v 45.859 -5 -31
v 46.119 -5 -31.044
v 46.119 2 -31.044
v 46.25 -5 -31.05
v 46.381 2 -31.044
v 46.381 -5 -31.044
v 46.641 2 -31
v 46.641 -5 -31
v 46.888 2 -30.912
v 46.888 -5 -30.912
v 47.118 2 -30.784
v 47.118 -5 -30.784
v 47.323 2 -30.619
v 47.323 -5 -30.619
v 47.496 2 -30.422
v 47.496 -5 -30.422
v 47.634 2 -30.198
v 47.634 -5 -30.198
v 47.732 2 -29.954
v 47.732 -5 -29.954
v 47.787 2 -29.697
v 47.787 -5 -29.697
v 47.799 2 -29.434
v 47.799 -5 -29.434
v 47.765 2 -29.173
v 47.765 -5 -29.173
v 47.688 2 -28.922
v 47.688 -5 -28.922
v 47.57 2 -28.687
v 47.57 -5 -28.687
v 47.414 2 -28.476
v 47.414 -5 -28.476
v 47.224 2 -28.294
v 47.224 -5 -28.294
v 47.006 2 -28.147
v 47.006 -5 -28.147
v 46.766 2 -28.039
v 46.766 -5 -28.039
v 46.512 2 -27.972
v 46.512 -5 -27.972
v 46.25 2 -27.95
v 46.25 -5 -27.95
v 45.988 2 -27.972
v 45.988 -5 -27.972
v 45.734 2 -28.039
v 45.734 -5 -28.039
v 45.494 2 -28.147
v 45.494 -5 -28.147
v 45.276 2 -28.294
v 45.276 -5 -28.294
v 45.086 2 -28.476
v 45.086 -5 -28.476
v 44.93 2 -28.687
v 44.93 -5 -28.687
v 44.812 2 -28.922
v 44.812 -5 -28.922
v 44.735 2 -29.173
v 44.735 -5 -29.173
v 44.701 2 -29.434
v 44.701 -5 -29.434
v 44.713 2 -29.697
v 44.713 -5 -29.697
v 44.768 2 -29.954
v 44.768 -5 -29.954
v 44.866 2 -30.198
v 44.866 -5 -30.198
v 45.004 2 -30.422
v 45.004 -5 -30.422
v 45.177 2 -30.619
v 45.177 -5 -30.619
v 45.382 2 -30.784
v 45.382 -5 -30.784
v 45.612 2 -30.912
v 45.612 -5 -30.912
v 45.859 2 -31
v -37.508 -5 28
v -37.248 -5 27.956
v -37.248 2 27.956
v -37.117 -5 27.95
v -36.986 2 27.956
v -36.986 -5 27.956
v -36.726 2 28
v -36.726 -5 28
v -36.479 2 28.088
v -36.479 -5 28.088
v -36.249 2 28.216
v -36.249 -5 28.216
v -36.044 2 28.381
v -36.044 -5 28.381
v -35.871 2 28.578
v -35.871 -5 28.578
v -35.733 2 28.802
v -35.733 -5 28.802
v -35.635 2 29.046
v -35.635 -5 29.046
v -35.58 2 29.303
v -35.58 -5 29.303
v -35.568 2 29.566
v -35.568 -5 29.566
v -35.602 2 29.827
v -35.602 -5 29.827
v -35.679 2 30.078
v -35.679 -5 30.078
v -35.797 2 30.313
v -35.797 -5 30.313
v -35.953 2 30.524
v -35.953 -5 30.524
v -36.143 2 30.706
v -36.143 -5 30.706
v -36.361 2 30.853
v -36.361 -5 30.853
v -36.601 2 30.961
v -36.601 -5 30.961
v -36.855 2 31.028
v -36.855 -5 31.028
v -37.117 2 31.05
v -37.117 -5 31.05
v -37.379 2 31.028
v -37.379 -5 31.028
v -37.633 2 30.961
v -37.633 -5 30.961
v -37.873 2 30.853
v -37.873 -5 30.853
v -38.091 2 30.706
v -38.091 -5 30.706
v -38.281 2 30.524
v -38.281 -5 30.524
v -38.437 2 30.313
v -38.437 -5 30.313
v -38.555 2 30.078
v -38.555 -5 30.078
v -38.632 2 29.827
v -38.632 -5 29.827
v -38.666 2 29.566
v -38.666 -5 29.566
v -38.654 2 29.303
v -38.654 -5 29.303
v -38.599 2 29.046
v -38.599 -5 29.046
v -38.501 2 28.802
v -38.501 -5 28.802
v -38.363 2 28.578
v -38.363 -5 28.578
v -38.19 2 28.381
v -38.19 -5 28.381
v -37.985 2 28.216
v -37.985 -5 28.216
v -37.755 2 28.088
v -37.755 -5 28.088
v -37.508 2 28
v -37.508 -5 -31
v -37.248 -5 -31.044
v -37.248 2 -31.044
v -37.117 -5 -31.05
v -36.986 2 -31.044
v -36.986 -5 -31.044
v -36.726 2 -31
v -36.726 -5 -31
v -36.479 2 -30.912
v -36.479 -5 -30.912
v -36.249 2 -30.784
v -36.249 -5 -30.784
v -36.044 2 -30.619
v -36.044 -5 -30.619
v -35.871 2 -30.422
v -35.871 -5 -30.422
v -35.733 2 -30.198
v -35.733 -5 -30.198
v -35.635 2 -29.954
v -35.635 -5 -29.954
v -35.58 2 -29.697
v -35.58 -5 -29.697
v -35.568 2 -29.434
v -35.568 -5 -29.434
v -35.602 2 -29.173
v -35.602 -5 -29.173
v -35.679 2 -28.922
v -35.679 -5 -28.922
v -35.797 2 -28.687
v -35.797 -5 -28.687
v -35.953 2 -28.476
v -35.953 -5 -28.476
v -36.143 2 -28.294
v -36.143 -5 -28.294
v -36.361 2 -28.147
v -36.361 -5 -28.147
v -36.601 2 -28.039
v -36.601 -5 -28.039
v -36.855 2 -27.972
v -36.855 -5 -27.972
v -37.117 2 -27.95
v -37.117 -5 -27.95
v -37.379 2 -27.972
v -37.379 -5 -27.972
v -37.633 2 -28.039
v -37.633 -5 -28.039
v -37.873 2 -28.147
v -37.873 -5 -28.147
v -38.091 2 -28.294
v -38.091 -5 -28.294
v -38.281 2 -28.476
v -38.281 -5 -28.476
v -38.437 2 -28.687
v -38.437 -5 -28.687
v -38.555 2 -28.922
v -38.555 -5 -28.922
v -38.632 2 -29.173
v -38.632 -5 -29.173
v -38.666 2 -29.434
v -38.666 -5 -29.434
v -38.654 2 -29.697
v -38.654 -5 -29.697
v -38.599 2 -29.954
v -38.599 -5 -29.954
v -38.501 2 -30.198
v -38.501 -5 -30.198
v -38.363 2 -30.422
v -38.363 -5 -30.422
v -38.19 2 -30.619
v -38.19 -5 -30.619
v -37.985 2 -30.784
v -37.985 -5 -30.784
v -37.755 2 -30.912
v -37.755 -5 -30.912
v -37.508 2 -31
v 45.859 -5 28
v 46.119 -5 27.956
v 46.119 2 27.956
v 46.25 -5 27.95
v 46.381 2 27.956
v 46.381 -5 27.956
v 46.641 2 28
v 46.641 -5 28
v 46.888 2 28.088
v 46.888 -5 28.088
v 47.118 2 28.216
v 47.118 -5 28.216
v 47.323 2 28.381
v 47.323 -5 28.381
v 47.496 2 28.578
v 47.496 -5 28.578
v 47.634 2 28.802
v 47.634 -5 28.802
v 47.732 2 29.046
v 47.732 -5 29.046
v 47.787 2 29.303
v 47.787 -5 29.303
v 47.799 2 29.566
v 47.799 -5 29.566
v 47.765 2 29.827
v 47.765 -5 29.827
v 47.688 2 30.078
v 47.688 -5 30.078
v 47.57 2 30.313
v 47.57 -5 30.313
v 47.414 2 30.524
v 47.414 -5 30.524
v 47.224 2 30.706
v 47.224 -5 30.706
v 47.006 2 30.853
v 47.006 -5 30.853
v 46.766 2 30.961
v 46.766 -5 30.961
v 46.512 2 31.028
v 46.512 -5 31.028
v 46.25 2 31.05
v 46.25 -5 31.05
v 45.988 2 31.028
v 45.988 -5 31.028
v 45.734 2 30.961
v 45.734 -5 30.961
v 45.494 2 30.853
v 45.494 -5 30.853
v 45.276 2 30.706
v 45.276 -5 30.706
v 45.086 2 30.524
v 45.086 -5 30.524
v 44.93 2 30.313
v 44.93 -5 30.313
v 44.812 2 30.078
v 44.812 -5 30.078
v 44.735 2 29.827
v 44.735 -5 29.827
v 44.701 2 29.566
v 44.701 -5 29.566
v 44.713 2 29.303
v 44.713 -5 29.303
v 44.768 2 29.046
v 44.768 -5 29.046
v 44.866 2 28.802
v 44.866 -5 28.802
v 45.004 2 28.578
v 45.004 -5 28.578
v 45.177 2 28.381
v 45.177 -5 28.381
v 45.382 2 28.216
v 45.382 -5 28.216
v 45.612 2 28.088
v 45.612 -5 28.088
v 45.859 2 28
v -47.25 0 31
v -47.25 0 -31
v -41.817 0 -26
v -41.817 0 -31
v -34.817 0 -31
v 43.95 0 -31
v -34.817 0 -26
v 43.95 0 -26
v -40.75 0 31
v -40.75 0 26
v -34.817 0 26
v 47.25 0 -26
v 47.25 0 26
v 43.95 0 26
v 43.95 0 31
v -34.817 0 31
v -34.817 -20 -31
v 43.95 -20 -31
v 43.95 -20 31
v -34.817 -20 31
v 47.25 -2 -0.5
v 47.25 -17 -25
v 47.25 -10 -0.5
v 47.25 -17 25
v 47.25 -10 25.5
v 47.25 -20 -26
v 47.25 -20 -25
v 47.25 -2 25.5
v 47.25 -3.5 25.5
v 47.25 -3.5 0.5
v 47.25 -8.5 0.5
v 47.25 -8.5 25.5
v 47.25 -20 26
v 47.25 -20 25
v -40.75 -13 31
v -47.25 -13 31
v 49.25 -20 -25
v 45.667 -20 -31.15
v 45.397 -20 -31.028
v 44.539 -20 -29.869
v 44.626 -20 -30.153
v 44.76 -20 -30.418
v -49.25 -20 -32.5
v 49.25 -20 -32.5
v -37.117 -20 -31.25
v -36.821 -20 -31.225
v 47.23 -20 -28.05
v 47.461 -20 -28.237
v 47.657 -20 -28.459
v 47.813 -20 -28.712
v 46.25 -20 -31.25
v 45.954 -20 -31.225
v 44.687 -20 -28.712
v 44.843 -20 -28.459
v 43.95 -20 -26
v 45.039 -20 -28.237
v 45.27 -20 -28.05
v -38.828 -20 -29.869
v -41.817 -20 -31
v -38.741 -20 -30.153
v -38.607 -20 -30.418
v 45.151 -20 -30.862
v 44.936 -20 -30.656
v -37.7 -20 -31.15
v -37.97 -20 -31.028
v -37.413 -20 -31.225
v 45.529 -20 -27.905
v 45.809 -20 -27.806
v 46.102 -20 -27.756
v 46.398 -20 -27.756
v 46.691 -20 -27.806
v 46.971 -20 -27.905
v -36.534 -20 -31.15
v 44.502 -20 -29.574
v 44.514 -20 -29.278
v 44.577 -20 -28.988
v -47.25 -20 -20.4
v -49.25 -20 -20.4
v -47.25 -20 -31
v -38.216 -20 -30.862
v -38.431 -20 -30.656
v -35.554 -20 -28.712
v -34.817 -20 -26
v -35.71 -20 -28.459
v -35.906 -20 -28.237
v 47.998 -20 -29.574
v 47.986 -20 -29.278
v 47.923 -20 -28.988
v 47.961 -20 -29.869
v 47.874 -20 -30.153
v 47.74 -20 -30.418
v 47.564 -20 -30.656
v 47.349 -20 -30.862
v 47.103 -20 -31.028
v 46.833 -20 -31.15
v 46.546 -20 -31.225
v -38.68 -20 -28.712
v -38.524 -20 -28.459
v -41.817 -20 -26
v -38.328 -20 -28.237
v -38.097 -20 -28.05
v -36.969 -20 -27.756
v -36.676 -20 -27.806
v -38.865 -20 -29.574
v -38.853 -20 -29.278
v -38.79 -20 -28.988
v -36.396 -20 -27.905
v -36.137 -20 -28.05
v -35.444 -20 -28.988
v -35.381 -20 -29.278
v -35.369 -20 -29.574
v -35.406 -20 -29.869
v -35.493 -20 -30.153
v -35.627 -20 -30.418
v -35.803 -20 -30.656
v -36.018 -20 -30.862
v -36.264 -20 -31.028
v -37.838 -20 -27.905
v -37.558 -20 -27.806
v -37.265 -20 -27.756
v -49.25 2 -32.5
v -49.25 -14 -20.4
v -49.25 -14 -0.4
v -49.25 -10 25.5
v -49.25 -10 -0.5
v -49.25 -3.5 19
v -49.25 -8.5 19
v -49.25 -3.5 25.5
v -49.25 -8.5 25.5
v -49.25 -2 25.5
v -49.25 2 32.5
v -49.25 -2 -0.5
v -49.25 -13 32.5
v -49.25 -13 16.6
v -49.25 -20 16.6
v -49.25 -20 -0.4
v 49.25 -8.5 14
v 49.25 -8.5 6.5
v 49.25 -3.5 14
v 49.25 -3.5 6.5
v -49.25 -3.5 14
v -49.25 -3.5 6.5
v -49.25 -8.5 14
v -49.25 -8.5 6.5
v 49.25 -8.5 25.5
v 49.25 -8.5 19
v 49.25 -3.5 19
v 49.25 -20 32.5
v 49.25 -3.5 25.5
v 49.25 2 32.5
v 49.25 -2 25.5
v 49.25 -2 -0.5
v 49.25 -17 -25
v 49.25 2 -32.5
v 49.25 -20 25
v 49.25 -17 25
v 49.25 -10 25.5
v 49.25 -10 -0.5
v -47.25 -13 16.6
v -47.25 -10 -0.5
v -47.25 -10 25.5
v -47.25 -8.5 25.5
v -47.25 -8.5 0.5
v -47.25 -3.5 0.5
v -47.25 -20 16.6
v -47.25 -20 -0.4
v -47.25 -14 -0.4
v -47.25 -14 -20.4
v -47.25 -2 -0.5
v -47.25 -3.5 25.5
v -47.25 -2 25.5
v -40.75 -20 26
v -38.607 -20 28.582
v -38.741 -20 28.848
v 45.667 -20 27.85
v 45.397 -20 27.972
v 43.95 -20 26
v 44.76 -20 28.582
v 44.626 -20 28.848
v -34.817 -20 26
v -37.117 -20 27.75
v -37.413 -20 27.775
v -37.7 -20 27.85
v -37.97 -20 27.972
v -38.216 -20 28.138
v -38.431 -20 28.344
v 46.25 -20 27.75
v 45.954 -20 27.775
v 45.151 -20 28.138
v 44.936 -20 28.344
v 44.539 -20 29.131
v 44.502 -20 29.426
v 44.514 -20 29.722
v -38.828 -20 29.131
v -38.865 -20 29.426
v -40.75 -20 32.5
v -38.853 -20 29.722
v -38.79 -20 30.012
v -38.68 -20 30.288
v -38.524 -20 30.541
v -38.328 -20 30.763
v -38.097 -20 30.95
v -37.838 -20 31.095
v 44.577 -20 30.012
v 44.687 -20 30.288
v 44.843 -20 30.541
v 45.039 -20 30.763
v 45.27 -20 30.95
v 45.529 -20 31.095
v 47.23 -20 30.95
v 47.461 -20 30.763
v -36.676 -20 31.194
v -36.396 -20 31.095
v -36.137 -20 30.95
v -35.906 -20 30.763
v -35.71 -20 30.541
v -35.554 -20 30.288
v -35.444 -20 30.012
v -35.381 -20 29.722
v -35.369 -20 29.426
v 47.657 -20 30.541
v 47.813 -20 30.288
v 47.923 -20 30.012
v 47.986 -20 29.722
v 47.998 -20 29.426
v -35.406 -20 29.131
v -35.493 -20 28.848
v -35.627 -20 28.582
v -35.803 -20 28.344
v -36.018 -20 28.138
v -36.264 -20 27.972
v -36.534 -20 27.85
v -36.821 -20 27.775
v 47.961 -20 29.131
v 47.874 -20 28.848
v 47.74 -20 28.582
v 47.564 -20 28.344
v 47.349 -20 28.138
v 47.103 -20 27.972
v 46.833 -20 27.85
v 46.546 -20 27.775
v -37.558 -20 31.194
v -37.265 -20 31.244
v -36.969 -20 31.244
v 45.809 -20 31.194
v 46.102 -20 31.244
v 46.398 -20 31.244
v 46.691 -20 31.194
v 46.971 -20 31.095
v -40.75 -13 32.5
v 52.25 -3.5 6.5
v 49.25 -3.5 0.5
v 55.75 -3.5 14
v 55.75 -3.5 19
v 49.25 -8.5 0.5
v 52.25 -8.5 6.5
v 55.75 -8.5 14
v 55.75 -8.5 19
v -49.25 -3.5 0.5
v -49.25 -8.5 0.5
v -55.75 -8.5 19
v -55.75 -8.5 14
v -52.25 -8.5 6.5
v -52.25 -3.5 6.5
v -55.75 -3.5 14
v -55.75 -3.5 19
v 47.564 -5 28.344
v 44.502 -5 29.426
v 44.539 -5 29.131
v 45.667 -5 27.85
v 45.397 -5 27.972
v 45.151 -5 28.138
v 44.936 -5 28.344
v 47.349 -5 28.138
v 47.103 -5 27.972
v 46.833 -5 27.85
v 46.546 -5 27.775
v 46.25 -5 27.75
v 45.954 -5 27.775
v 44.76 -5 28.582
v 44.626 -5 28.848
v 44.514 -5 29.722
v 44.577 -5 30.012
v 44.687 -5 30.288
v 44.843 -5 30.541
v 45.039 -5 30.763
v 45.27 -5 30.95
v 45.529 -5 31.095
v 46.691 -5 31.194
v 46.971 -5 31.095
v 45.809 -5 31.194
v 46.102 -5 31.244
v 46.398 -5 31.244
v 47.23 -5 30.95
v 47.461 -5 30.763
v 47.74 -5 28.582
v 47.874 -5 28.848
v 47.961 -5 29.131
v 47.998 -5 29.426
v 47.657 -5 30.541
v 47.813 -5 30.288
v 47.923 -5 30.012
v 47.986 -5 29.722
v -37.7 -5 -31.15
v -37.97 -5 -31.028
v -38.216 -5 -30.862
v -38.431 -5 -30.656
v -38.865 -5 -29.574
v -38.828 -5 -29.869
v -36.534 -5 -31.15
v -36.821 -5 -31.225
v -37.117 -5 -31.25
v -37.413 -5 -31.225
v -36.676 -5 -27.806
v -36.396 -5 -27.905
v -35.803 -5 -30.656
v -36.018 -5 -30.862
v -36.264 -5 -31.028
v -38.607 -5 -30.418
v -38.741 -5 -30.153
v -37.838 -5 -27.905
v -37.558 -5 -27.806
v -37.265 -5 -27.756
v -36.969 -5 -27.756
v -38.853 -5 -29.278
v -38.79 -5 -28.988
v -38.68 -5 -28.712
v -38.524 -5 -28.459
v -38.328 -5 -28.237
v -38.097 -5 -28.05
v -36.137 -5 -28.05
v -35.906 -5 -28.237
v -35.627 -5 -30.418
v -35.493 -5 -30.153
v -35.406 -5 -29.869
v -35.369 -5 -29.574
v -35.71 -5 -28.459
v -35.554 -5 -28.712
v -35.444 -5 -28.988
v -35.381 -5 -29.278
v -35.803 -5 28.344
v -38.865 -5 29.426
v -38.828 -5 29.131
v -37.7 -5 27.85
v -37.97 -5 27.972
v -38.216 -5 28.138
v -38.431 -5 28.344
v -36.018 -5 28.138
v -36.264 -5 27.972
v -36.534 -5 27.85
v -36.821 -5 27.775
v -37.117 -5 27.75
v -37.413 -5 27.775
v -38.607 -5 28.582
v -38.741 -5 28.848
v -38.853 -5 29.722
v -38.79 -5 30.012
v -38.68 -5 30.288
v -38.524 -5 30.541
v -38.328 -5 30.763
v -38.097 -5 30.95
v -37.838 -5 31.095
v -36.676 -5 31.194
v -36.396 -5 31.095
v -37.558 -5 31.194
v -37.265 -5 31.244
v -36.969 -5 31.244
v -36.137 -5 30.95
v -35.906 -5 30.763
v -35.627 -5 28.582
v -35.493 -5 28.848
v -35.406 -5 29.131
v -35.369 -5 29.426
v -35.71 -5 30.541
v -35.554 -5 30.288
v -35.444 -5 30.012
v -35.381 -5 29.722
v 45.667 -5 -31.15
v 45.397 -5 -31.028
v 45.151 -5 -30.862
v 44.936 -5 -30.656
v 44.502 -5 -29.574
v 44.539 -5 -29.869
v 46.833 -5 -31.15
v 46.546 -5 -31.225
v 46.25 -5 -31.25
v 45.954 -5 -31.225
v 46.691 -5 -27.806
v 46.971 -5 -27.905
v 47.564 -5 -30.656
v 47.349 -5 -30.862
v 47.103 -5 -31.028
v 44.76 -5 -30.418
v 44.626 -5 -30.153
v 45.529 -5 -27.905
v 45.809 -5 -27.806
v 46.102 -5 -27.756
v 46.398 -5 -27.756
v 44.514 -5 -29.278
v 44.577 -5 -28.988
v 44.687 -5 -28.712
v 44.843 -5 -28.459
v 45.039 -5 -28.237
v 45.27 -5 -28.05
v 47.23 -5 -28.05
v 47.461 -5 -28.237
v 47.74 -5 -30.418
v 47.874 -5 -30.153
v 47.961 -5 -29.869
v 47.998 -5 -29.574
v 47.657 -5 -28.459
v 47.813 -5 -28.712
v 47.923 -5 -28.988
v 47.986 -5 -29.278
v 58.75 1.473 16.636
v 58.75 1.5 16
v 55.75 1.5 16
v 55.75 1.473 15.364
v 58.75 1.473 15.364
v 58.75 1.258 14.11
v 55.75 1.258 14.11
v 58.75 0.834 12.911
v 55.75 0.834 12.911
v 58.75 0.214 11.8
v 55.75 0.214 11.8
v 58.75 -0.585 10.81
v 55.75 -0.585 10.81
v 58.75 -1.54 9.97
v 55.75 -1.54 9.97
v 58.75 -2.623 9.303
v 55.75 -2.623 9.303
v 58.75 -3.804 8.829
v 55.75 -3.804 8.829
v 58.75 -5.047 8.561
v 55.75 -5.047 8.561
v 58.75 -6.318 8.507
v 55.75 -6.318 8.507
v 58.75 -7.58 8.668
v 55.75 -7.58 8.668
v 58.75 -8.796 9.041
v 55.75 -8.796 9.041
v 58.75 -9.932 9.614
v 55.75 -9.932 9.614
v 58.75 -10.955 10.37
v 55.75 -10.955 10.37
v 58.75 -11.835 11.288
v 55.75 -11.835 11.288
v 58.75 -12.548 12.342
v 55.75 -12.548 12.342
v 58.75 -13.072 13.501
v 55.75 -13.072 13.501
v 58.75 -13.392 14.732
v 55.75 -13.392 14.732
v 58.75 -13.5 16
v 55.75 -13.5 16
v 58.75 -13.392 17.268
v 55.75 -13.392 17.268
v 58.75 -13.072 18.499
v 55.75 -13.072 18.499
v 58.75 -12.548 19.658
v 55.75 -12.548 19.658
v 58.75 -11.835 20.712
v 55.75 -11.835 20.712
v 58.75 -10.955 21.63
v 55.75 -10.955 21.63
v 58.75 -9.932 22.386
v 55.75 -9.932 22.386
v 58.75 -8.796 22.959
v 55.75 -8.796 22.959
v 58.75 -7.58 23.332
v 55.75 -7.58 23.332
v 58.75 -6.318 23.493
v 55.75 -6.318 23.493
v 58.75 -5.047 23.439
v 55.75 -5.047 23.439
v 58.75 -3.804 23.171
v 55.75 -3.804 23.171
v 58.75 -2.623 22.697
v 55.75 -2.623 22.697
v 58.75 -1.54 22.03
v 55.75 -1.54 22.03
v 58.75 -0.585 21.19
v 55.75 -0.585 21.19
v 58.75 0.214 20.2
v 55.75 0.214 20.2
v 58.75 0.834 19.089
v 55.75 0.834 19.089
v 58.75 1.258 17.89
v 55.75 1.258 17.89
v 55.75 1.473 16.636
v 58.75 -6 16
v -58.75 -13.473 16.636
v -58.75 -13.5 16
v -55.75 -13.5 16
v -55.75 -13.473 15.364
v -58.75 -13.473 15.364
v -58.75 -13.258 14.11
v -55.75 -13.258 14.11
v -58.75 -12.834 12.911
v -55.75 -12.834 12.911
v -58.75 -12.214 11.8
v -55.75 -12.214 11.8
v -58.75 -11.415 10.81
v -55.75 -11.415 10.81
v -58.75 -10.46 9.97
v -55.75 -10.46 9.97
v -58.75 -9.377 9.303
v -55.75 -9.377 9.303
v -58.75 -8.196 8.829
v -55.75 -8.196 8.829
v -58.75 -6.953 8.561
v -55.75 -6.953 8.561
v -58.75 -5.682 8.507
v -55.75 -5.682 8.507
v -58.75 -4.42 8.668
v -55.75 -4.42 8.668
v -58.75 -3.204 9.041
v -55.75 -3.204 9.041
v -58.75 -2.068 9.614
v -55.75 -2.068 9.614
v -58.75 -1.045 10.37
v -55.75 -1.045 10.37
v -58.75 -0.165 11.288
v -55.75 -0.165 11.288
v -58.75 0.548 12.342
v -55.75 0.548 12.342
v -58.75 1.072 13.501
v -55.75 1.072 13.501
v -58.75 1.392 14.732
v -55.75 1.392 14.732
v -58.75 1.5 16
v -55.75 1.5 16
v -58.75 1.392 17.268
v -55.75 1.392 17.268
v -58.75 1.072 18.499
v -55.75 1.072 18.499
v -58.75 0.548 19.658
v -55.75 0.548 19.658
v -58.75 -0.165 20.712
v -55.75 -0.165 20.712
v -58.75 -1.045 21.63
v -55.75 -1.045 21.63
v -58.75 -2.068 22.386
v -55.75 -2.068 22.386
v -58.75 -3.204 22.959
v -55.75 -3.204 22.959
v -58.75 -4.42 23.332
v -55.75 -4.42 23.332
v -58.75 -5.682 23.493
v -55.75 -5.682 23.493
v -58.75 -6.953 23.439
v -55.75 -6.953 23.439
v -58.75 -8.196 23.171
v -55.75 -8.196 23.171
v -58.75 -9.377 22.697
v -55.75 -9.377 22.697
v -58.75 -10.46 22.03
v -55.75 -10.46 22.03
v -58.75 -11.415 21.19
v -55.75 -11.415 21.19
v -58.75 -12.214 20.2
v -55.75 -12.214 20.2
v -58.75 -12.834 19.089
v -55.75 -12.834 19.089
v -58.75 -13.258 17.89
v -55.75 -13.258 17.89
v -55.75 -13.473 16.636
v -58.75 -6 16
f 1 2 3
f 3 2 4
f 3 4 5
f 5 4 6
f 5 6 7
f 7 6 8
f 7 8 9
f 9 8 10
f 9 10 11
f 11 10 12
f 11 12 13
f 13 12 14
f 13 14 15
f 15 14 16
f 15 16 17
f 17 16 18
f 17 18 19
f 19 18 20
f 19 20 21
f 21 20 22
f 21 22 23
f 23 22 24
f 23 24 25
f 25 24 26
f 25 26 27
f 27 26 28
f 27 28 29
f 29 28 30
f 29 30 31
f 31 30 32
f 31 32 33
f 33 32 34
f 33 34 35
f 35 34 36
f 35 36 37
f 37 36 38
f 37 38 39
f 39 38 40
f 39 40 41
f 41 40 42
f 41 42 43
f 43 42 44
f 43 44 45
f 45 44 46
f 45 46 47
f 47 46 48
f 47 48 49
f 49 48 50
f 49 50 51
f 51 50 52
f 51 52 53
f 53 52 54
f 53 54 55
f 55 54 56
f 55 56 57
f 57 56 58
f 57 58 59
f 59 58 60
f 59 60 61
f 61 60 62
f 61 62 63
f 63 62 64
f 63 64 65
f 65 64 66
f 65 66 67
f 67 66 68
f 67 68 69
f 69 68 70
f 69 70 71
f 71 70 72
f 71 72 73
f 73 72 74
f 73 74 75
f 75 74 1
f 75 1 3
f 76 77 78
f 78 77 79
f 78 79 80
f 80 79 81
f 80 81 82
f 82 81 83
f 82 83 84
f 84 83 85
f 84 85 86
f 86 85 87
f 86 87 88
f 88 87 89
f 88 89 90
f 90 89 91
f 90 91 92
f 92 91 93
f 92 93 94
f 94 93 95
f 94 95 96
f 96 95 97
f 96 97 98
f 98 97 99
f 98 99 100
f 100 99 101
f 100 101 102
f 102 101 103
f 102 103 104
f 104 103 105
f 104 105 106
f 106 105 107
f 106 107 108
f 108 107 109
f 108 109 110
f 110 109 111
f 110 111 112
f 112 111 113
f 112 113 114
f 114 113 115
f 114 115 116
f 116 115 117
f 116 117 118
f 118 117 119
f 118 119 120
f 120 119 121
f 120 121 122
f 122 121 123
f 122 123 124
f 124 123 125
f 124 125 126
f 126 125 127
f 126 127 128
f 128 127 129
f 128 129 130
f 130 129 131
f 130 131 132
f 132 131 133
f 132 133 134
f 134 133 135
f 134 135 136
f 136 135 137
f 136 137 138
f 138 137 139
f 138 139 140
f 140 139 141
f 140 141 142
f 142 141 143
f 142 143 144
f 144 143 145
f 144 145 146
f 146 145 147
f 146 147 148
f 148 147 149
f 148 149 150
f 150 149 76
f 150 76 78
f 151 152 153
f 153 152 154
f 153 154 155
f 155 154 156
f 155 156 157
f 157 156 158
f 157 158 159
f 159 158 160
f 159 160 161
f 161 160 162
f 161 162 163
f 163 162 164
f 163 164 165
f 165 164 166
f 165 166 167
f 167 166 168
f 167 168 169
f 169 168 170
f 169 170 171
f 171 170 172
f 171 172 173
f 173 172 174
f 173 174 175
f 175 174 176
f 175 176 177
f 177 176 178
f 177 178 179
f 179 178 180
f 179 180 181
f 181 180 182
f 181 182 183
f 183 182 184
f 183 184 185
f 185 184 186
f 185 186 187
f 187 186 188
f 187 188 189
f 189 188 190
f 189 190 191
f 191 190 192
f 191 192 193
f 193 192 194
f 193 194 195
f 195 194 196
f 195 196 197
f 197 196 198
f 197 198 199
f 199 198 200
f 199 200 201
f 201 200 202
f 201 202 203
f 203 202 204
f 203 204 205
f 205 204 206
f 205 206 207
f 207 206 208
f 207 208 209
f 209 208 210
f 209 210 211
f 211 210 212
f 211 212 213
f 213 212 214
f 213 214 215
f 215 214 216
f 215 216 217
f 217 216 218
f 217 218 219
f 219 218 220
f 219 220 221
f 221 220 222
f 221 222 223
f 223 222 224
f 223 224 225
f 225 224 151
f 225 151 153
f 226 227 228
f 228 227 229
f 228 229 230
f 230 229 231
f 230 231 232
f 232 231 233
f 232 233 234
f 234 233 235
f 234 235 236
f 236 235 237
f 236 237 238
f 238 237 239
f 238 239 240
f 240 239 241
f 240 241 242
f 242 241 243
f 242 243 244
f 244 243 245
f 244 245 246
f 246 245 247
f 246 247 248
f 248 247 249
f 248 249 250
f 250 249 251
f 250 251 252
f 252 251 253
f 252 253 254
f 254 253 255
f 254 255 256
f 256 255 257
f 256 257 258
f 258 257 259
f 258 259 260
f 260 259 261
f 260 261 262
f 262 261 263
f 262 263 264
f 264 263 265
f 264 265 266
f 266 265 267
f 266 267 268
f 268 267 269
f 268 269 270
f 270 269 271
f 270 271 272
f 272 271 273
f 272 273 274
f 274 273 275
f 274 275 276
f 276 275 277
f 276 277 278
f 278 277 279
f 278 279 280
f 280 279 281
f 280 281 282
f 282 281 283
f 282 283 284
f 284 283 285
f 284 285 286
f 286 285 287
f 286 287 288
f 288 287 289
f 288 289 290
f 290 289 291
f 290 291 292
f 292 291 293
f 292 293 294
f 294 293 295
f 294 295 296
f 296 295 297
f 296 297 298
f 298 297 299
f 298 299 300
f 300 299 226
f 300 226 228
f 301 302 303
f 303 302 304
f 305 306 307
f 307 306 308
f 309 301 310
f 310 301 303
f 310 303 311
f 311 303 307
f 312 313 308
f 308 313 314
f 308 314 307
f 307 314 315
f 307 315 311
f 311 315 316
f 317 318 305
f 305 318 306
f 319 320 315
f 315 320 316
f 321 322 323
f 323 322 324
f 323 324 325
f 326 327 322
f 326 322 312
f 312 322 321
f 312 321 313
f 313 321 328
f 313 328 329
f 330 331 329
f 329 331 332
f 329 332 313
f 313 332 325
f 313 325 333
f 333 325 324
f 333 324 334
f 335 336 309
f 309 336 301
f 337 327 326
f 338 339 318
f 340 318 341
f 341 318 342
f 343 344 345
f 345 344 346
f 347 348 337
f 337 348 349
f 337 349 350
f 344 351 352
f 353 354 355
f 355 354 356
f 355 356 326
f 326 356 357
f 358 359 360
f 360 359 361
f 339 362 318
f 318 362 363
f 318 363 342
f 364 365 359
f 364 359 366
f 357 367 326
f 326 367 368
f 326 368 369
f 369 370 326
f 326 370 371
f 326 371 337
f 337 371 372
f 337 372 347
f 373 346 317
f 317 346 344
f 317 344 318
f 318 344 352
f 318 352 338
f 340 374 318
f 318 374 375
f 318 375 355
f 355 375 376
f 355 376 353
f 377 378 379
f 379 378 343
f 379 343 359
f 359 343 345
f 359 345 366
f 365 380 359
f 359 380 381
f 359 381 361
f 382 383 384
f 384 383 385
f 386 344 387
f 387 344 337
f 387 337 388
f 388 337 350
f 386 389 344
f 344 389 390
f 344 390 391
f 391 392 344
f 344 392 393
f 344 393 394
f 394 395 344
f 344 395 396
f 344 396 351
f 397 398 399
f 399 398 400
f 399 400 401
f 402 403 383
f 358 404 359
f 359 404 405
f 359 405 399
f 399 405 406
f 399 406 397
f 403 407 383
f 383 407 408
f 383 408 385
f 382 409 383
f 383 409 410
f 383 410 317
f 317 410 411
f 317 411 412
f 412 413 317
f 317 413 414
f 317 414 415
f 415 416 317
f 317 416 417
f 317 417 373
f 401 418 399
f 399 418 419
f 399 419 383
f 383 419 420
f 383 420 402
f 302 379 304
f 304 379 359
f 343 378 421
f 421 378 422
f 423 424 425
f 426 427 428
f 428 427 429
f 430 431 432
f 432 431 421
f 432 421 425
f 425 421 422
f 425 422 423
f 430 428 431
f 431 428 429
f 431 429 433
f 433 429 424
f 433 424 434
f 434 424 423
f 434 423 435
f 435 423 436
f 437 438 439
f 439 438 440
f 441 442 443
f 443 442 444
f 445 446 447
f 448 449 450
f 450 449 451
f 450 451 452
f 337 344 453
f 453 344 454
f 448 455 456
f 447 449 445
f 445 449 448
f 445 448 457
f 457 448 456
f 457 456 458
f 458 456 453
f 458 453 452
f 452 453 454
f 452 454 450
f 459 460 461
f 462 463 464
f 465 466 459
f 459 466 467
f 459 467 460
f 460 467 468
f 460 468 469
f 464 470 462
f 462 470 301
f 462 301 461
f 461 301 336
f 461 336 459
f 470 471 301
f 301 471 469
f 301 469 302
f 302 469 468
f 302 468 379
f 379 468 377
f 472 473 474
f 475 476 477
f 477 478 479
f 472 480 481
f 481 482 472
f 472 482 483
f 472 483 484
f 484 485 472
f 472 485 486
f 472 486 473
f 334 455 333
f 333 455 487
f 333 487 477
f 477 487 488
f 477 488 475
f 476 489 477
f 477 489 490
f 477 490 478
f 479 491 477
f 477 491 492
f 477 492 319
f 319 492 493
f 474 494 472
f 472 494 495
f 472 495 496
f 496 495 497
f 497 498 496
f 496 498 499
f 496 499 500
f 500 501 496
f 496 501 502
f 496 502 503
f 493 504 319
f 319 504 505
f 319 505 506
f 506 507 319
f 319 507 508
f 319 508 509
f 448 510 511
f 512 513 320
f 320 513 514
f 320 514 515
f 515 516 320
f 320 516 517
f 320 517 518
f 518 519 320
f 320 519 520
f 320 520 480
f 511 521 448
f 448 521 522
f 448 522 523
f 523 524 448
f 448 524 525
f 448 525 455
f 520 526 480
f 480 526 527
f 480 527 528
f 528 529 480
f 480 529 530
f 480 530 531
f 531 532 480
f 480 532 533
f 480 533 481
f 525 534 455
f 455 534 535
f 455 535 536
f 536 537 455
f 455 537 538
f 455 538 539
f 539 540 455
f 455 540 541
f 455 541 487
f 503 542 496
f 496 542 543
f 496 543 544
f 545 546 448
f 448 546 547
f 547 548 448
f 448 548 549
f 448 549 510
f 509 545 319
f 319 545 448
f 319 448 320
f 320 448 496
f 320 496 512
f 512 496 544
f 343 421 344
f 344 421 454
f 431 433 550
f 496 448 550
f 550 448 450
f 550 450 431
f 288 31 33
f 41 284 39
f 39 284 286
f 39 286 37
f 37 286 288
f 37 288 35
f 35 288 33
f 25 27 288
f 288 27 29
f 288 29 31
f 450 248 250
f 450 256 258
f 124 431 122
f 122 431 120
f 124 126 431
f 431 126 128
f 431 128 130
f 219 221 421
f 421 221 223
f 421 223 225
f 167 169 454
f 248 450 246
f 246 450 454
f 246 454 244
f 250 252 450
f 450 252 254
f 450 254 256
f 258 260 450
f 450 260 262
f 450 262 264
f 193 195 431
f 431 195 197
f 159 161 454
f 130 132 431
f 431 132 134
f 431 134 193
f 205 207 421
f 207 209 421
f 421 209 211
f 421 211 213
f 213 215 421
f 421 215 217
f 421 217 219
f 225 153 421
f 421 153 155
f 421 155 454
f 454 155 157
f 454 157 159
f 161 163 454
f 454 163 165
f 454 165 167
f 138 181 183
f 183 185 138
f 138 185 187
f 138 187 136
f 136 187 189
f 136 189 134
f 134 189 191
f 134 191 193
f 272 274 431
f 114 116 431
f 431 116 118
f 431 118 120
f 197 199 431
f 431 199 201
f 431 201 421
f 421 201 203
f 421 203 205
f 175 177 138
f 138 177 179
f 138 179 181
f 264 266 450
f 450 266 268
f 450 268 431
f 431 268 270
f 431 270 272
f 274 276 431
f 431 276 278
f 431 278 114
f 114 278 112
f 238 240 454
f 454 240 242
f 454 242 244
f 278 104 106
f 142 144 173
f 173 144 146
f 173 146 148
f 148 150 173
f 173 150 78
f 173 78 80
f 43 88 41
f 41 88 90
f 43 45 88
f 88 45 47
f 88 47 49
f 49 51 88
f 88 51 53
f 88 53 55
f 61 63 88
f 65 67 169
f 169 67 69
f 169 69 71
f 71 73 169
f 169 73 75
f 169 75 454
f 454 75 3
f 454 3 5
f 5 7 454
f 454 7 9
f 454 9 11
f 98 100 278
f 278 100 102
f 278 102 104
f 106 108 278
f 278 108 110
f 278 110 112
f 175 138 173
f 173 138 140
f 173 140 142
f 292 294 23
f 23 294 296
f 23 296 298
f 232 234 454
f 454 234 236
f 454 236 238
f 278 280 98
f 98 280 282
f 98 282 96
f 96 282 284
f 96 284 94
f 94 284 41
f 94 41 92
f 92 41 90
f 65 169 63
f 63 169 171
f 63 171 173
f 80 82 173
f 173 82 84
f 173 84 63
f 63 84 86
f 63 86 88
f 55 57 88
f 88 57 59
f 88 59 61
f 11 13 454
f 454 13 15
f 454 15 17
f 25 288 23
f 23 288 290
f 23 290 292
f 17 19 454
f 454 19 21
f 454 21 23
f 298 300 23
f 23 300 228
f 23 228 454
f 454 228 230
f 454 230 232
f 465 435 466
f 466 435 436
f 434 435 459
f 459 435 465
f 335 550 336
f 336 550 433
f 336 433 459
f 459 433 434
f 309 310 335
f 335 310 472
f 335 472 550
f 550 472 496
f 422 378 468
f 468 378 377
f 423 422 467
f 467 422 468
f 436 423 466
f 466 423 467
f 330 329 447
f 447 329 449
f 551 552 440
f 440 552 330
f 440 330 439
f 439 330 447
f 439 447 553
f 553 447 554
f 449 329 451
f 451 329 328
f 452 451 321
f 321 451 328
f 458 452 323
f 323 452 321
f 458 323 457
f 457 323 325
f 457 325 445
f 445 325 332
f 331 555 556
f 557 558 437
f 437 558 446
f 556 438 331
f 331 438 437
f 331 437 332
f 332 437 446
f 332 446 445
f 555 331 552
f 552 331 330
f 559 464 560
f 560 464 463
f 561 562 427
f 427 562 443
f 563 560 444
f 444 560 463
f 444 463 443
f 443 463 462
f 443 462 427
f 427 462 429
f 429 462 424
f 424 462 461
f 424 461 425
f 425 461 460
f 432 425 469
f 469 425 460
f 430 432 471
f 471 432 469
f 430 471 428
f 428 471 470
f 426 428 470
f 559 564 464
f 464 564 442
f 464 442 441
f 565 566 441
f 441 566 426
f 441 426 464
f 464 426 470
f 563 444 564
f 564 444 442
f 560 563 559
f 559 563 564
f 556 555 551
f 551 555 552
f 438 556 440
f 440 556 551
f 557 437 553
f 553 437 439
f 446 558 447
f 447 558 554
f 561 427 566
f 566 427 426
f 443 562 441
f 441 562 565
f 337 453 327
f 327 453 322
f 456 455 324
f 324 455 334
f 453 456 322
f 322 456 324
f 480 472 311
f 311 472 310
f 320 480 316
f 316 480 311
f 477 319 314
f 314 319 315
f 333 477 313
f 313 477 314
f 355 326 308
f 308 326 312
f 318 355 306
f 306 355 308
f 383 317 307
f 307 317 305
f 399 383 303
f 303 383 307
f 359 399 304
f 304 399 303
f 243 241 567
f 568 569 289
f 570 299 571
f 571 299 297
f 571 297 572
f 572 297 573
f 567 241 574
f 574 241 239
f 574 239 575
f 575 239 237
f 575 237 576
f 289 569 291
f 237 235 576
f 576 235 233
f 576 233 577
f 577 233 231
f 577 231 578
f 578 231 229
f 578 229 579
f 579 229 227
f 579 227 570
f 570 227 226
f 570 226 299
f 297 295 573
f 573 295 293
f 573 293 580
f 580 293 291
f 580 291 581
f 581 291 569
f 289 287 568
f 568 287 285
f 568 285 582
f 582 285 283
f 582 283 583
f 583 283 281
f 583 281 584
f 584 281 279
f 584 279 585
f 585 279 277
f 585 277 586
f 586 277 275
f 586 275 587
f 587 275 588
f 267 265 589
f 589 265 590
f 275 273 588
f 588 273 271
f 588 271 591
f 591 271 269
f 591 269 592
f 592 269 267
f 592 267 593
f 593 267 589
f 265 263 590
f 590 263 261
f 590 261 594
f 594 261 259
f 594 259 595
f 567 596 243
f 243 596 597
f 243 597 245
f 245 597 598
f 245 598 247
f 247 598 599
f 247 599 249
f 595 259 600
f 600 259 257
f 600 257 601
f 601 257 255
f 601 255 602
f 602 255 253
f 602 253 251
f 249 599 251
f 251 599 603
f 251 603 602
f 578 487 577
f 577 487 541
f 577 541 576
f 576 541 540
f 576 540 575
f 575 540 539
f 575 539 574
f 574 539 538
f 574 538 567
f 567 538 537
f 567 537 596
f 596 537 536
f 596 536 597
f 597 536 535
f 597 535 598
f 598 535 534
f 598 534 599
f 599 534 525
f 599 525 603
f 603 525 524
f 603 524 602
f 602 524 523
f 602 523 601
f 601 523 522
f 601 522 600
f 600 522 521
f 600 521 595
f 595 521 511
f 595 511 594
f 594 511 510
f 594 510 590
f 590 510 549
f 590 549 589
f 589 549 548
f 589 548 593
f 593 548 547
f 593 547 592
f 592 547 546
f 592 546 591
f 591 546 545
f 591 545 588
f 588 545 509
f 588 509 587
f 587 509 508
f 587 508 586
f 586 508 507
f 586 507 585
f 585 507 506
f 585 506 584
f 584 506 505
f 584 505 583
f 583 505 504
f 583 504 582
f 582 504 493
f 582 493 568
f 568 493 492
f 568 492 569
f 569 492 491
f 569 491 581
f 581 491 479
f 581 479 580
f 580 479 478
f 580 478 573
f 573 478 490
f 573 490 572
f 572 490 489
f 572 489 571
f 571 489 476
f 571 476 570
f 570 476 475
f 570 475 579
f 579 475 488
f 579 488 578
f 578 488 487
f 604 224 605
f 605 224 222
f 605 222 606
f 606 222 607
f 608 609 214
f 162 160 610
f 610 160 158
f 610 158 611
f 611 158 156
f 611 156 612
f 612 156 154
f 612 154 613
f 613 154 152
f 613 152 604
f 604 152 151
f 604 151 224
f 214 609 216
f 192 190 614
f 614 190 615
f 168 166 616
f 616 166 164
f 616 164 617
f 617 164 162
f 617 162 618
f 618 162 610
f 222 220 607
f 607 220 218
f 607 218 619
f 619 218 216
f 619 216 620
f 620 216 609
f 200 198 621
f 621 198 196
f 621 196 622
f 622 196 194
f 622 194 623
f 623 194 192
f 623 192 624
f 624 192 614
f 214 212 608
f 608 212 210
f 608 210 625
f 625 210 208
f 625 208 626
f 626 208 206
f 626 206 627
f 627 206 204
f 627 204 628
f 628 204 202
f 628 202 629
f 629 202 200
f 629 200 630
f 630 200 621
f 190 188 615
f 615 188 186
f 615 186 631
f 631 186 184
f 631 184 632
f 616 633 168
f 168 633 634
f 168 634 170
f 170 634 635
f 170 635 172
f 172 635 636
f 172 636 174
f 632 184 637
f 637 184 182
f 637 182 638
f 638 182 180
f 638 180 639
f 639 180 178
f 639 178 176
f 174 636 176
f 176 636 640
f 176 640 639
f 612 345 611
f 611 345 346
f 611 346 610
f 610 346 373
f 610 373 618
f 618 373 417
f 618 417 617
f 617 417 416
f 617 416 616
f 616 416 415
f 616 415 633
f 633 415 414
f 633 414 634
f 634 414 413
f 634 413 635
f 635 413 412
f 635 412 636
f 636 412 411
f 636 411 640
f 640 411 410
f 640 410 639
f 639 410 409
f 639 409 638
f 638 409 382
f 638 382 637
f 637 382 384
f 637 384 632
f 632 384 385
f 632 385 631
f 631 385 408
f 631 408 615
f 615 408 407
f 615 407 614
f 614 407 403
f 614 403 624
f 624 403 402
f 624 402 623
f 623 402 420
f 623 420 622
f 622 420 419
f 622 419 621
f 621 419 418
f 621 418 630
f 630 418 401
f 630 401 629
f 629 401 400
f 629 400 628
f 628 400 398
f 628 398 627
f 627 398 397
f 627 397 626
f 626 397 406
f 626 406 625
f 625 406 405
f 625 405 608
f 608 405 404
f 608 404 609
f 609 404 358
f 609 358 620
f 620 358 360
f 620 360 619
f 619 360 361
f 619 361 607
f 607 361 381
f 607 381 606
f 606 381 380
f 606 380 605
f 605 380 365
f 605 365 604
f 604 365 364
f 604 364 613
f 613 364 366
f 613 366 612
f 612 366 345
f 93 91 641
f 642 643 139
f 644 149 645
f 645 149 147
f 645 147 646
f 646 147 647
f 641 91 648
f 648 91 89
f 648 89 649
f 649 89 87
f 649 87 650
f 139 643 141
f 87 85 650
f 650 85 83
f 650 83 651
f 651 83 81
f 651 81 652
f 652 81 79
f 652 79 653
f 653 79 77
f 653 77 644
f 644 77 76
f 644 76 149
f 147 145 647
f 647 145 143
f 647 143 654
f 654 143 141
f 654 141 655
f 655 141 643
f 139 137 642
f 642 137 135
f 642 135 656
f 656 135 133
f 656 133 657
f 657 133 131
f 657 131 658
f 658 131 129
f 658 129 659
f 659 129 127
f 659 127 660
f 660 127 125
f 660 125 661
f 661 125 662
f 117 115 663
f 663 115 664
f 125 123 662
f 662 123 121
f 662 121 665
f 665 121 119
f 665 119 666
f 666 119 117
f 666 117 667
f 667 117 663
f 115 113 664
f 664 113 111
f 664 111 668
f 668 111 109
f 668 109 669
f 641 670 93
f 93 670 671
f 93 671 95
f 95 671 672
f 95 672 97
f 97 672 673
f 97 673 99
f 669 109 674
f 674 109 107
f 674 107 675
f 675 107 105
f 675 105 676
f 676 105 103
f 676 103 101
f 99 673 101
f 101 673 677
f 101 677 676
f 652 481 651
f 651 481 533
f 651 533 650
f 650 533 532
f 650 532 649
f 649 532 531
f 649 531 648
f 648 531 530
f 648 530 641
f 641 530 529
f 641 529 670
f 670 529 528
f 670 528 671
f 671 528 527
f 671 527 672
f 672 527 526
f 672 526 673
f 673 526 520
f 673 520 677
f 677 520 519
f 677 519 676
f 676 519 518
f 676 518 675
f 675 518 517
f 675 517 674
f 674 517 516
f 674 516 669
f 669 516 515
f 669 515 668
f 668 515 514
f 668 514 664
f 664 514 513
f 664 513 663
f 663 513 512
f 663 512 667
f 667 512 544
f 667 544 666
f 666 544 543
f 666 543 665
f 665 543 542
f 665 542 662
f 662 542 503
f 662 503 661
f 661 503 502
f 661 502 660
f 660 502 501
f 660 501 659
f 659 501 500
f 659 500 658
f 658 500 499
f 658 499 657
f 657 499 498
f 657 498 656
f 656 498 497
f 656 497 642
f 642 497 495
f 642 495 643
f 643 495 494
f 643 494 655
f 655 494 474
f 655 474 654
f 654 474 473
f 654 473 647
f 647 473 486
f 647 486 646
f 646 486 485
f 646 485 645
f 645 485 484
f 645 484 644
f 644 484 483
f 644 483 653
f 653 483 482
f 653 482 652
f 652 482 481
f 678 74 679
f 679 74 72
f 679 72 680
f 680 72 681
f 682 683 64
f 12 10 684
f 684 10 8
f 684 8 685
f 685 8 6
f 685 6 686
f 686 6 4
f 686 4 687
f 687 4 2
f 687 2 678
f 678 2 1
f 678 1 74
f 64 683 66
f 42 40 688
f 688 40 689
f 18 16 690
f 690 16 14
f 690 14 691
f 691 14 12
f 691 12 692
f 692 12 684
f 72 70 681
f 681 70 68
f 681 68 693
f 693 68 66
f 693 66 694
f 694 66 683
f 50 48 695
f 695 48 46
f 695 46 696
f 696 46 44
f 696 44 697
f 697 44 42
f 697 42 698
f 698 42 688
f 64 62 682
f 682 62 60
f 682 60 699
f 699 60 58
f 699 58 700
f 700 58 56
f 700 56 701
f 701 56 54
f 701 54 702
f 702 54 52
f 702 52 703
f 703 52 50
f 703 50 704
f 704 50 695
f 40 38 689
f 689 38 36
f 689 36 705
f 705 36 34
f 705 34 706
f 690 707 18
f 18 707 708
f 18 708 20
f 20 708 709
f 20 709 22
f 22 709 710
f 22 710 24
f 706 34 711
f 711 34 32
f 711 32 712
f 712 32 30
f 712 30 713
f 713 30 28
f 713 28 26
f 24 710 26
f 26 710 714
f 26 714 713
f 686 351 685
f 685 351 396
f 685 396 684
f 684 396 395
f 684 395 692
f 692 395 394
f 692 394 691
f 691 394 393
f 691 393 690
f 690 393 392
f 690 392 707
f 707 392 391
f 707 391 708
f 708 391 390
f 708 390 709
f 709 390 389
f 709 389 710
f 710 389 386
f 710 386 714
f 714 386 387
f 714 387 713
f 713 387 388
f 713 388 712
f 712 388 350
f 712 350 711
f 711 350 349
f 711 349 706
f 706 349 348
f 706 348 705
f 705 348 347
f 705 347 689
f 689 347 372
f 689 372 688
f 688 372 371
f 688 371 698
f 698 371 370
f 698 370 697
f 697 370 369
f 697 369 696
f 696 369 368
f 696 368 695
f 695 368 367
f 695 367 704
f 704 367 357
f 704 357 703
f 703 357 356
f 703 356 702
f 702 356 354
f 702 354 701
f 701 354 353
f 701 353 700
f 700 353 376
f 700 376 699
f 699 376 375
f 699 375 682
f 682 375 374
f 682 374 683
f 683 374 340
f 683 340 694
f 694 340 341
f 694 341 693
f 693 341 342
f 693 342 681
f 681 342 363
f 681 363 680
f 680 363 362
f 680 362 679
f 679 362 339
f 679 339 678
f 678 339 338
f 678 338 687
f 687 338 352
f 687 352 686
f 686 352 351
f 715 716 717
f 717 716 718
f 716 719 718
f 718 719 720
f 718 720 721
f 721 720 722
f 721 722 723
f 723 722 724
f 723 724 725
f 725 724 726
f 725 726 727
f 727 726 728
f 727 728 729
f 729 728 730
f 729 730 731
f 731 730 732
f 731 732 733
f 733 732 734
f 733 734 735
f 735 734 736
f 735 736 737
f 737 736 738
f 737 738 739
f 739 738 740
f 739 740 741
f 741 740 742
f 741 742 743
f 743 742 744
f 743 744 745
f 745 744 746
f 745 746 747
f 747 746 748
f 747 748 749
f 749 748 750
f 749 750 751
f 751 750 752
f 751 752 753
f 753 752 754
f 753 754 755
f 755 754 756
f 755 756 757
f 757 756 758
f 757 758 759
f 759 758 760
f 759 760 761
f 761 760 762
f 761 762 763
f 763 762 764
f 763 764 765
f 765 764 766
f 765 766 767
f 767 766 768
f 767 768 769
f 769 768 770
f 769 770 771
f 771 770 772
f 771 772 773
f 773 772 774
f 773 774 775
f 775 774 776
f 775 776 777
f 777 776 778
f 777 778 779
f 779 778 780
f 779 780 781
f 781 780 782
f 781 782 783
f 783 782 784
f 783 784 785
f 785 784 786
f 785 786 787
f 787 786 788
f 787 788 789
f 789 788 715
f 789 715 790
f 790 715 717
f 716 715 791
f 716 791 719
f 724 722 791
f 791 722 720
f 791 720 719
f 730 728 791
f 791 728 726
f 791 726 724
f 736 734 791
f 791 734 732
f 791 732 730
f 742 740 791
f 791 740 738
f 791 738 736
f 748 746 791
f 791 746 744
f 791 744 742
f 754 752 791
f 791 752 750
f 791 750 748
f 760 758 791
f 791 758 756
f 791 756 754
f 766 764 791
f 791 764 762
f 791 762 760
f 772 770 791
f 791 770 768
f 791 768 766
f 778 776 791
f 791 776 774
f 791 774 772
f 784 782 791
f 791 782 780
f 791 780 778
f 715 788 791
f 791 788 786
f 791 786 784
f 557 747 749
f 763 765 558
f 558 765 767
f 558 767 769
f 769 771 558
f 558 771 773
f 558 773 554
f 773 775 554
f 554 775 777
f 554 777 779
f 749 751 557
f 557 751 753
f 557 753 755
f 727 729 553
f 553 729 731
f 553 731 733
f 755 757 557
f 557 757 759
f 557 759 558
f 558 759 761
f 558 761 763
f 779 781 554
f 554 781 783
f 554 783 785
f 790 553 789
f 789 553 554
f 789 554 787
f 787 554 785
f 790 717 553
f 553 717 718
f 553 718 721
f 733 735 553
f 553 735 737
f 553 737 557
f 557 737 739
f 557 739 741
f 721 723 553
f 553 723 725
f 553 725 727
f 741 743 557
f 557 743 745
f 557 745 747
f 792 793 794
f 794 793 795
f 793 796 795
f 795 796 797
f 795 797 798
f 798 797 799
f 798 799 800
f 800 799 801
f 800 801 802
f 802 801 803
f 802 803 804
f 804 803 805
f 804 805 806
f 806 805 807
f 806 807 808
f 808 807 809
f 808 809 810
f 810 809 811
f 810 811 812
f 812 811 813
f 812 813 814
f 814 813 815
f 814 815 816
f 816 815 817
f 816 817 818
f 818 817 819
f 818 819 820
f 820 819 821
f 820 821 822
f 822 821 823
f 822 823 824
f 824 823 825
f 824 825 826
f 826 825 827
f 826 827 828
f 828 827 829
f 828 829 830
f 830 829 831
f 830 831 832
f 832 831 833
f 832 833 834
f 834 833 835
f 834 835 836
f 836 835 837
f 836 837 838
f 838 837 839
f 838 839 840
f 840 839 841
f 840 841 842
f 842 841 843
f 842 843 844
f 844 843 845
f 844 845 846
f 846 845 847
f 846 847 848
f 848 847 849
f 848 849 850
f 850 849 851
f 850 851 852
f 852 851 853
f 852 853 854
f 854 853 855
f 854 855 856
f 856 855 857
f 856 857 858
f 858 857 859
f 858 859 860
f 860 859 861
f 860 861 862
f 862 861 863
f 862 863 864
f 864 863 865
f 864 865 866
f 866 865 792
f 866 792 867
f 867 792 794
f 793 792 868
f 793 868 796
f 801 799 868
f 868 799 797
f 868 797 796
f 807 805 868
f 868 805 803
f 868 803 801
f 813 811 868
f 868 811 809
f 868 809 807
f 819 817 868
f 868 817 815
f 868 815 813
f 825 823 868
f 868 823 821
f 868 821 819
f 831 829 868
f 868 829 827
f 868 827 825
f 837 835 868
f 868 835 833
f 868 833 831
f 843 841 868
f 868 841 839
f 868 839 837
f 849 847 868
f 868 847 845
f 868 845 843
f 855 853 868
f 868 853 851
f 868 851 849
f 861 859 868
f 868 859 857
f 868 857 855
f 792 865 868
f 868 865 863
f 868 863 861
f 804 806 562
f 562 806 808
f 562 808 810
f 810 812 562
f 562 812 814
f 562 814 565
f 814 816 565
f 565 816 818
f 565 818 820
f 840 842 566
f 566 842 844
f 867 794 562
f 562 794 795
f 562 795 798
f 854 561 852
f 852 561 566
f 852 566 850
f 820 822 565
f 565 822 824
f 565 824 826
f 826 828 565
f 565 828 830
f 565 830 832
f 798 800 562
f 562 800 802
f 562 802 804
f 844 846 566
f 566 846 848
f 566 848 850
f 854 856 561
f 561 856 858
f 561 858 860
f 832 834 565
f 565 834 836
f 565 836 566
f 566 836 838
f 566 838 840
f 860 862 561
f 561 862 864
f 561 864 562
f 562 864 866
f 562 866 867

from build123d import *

# Parameters (mm, degrees)
SKETCH_1_W          = 98.5
SKETCH_1_H          = 65
EXTRUDE_1_DEPTH     = 2
SKETCH_2_W          = 98.5
SKETCH_2_H          = 65
SKETCH_2_W_2        = 94.5
SKETCH_2_H_2        = 62
EXTRUDE_2_DEPTH     = 20
SKETCH_3_W          = 20
SKETCH_3_H          = 6
SKETCH_3_W_2        = 15.9
SKETCH_3_H_2        = 7
CUT_EXTRUDE_1_DEPTH = 8.5
CUT_EXTRUDE_5_DEPTH = 106.633801408
SKETCH_8_W          = 6.5
SKETCH_8_H          = 5
EXTRUDE_5_DEPTH     = 5
SKETCH_9_R          = 1.55
CUT_EXTRUDE_7_DEPTH = 69.178534012
SKETCH_10_R         = 2.25
SKETCH_10_R_2       = 1.55
EXTRUDE_6_DEPTH     = 20
SKETCH_11_W         = 50
SKETCH_11_H         = 6
CUT_EXTRUDE_8_DEPTH = 10
EXTRUDE_8_DEPTH     = 20
SKETCH_16_R         = 1.75
CUT_EXTRUDE_9_DEPTH = 15
SKETCH_17_R         = 7.5
EXTRUDE_9_DEPTH     = 3
EXTRUDE_START       = 3
SKETCH_18_R         = 7.5
EXTRUDE_10_DEPTH    = 3


with BuildPart() as part:
    # 草图1 → 凸台-拉伸1 (new body)
    with BuildSketch(Plane(origin=(0, 0, 0), x_dir=(1, 0, 0), z_dir=(0, 1, 0))):
        Rectangle(SKETCH_1_W, SKETCH_1_H)
    extrude(amount=EXTRUDE_1_DEPTH)

    # 草图2 → 凸台-拉伸2 (add)
    with BuildSketch(Plane(origin=(0, 0, 0), x_dir=(-1, 0, 0), z_dir=(0, -1, 0))):
        Rectangle(SKETCH_2_W, SKETCH_2_H)
        Rectangle(SKETCH_2_W_2, SKETCH_2_H_2, mode=Mode.SUBTRACT)
    extrude(amount=EXTRUDE_2_DEPTH)

    # 草图3 → 切除-拉伸1 (cut)
    with BuildSketch(Plane.ZY.offset(49.25)):
        with Locations((-10.4, -17)):
            Rectangle(SKETCH_3_W, SKETCH_3_H)
        with Locations((24.55, -16.5)):
            Rectangle(SKETCH_3_W_2, SKETCH_3_H_2)
    extrude(amount=-CUT_EXTRUDE_1_DEPTH, mode=Mode.SUBTRACT)

    # 草图7 → 切除-拉伸5 (cut, through all)
    with BuildSketch(Plane.ZY.offset(49.25)):
        Polygon((25.5, -3.5), (25.5, -2), (-0.5, -2), (-0.5, -10), (25.5, -10), (25.5, -8.5), (0.5, -8.5), (0.5, -3.5), align=None)
    extrude(amount=-CUT_EXTRUDE_5_DEPTH, mode=Mode.SUBTRACT)

    # 草图8 → 凸台-拉伸5 (add)
    with BuildSketch(Plane(origin=(0, -3.5, 0), x_dir=(1, 0, 0), z_dir=(0, 1, 0))):
        Polygon((-49.25, -0.5), (-52.25, -6.5), (-49.25, -6.5), align=None)
        Polygon((49.25, -0.5), (52.25, -6.5), (49.25, -6.5), align=None)
        with Locations((52.5, -16.5)):
            Rectangle(SKETCH_8_W, SKETCH_8_H)
        with Locations((-52.5, -16.5)):
            Rectangle(SKETCH_8_W, SKETCH_8_H)
    extrude(amount=-EXTRUDE_5_DEPTH)

    # 草图9 → 切除-拉伸7 (cut, through all)
    with BuildSketch(Plane(origin=(0, 2, 0), x_dir=(1, 0, 0), z_dir=(0, 1, 0))):
        with Locations(Location((46.25, 29.5, 0), (0, 0, 270))):
            Circle(SKETCH_9_R)
        with Locations(Location((46.25, -29.5, 0), (0, 0, 270))):
            Circle(SKETCH_9_R)
        with Locations(Location((-37.117, 29.5, 0), (0, 0, 270))):
            Circle(SKETCH_9_R)
        with Locations(Location((-37.117, -29.5, 0), (0, 0, 270))):
            Circle(SKETCH_9_R)
    extrude(amount=-CUT_EXTRUDE_7_DEPTH, mode=Mode.SUBTRACT)

    # 草图10 → 凸台-拉伸6 (add, through all)
    # profile 1 of 4: a face of its own
    with BuildSketch(Plane(origin=(0, 0, 0), x_dir=(-1, 0, 0), z_dir=(0, -1, 0))):
        with Locations((-46.25, 29.5)):
            Circle(SKETCH_10_R)
        with Locations(Location((-46.25, 29.5, 0), (0, 0, 270))):
            Circle(SKETCH_10_R_2, mode=Mode.SUBTRACT)
    # profile 2 of 4: a face of its own
    with BuildSketch(Plane(origin=(0, 0, 0), x_dir=(-1, 0, 0), z_dir=(0, -1, 0))):
        with Locations((37.117, 29.5)):
            Circle(SKETCH_10_R)
        with Locations(Location((37.117, 29.5, 0), (0, 0, 270))):
            Circle(SKETCH_10_R_2, mode=Mode.SUBTRACT)
    # profile 3 of 4: a face of its own
    with BuildSketch(Plane(origin=(0, 0, 0), x_dir=(-1, 0, 0), z_dir=(0, -1, 0))):
        with Locations((-46.25, -29.5)):
            Circle(SKETCH_10_R)
        with Locations(Location((-46.25, -29.5, 0), (0, 0, 270))):
            Circle(SKETCH_10_R_2, mode=Mode.SUBTRACT)
    # profile 4 of 4: a face of its own
    with BuildSketch(Plane(origin=(0, 0, 0), x_dir=(-1, 0, 0), z_dir=(0, -1, 0))):
        with Locations((37.117, -29.5)):
            Circle(SKETCH_10_R)
        with Locations(Location((37.117, -29.5, 0), (0, 0, 270))):
            Circle(SKETCH_10_R_2, mode=Mode.SUBTRACT)
    extrude(amount=EXTRUDE_6_DEPTH)

    # 草图11 → 切除-拉伸8 (cut)
    with BuildSketch(Plane(origin=(49.25, 0, 0), x_dir=(0, 0, -1), z_dir=(1, 0, 0))):
        with Locations((0, -20)):
            Rectangle(SKETCH_11_W, SKETCH_11_H)
    extrude(amount=-CUT_EXTRUDE_8_DEPTH, mode=Mode.SUBTRACT)

    # 草图15 → 凸台-拉伸8 (add, through all)
    with BuildSketch(Plane(origin=(0, 0, 0), x_dir=(-1, 0, 0), z_dir=(0, -1, 0))):
        with BuildLine():
            Line((-43.95, 26), (-43.95, 31))
            Line((-43.95, 31), (-44.572949017, 31))
            ThreePointArc((-44.572949017, 31), (-44.459916807, 28.136877788), (-47.25, 27.484435563))
            Line((-47.25, 27.484435563), (-47.25, 26))
            Line((-47.25, 26), (-43.95, 26))
        make_face()
        with BuildLine():
            Line((-44.572949017, -31), (-43.95, -31))
            Line((-43.95, -31), (-43.95, -26))
            Line((-43.95, -26), (-47.25, -26))
            Line((-47.25, -26), (-47.25, -27.484435563))
            ThreePointArc((-47.25, -27.484435563), (-44.459916807, -28.136877788), (-44.572949017, -31))
        make_face()
        with BuildLine():
            Line((35.439949017, 31), (34.817, 31))
            Line((34.817, 31), (34.817, 26))
            Line((34.817, 26), (41.817, 26))
            Line((41.817, 26), (41.817, 31))
            Line((41.817, 31), (38.794050983, 31))
            ThreePointArc((38.794050983, 31), (37.117, 27.25), (35.439949017, 31))
        make_face()
        with BuildLine():
            Line((34.817, -26), (34.817, -31))
            Line((34.817, -31), (35.439949017, -31))
            ThreePointArc((35.439949017, -31), (37.117, -27.25), (38.794050983, -31))
            Line((38.794050983, -31), (40.75, -31))
            Line((40.75, -31), (40.75, -26))
            Line((40.75, -26), (34.817, -26))
        make_face()
    extrude(amount=EXTRUDE_8_DEPTH)

    # 草图16 → 切除-拉伸9 (cut)
    with BuildSketch(Plane(origin=(0, -20, 0), x_dir=(-1, 0, 0), z_dir=(0, -1, 0))):
        with Locations(Location((-46.25, 29.5, 0), (0, 0, 90))):
            Circle(SKETCH_16_R)
        with Locations(Location((37.117, 29.5, 0), (0, 0, 90))):
            Circle(SKETCH_16_R)
        with Locations(Location((37.117, -29.5, 0), (0, 0, 90))):
            Circle(SKETCH_16_R)
        with Locations(Location((-46.25, -29.5, 0), (0, 0, 90))):
            Circle(SKETCH_16_R)
    extrude(amount=-CUT_EXTRUDE_9_DEPTH, mode=Mode.SUBTRACT)

    # 草图17 → 凸台-拉伸9 (add)
    with BuildSketch(Plane(origin=(55.75, 0, 0), x_dir=(0, 0, -1), z_dir=(1, 0, 0))):
        with Locations(Location((-16, -6, 0), (0, 0, 90))):
            Circle(SKETCH_17_R)
    extrude(amount=EXTRUDE_9_DEPTH)

    # 草图18 → 凸台-拉伸10 (add)
    with BuildSketch(Plane.ZY.offset(55.75).offset(EXTRUDE_START)):
        with Locations(Location((16, -6, 0), (0, 0, 90))):
            Circle(SKETCH_18_R)
    extrude(amount=-EXTRUDE_10_DEPTH)


solid = part.part
